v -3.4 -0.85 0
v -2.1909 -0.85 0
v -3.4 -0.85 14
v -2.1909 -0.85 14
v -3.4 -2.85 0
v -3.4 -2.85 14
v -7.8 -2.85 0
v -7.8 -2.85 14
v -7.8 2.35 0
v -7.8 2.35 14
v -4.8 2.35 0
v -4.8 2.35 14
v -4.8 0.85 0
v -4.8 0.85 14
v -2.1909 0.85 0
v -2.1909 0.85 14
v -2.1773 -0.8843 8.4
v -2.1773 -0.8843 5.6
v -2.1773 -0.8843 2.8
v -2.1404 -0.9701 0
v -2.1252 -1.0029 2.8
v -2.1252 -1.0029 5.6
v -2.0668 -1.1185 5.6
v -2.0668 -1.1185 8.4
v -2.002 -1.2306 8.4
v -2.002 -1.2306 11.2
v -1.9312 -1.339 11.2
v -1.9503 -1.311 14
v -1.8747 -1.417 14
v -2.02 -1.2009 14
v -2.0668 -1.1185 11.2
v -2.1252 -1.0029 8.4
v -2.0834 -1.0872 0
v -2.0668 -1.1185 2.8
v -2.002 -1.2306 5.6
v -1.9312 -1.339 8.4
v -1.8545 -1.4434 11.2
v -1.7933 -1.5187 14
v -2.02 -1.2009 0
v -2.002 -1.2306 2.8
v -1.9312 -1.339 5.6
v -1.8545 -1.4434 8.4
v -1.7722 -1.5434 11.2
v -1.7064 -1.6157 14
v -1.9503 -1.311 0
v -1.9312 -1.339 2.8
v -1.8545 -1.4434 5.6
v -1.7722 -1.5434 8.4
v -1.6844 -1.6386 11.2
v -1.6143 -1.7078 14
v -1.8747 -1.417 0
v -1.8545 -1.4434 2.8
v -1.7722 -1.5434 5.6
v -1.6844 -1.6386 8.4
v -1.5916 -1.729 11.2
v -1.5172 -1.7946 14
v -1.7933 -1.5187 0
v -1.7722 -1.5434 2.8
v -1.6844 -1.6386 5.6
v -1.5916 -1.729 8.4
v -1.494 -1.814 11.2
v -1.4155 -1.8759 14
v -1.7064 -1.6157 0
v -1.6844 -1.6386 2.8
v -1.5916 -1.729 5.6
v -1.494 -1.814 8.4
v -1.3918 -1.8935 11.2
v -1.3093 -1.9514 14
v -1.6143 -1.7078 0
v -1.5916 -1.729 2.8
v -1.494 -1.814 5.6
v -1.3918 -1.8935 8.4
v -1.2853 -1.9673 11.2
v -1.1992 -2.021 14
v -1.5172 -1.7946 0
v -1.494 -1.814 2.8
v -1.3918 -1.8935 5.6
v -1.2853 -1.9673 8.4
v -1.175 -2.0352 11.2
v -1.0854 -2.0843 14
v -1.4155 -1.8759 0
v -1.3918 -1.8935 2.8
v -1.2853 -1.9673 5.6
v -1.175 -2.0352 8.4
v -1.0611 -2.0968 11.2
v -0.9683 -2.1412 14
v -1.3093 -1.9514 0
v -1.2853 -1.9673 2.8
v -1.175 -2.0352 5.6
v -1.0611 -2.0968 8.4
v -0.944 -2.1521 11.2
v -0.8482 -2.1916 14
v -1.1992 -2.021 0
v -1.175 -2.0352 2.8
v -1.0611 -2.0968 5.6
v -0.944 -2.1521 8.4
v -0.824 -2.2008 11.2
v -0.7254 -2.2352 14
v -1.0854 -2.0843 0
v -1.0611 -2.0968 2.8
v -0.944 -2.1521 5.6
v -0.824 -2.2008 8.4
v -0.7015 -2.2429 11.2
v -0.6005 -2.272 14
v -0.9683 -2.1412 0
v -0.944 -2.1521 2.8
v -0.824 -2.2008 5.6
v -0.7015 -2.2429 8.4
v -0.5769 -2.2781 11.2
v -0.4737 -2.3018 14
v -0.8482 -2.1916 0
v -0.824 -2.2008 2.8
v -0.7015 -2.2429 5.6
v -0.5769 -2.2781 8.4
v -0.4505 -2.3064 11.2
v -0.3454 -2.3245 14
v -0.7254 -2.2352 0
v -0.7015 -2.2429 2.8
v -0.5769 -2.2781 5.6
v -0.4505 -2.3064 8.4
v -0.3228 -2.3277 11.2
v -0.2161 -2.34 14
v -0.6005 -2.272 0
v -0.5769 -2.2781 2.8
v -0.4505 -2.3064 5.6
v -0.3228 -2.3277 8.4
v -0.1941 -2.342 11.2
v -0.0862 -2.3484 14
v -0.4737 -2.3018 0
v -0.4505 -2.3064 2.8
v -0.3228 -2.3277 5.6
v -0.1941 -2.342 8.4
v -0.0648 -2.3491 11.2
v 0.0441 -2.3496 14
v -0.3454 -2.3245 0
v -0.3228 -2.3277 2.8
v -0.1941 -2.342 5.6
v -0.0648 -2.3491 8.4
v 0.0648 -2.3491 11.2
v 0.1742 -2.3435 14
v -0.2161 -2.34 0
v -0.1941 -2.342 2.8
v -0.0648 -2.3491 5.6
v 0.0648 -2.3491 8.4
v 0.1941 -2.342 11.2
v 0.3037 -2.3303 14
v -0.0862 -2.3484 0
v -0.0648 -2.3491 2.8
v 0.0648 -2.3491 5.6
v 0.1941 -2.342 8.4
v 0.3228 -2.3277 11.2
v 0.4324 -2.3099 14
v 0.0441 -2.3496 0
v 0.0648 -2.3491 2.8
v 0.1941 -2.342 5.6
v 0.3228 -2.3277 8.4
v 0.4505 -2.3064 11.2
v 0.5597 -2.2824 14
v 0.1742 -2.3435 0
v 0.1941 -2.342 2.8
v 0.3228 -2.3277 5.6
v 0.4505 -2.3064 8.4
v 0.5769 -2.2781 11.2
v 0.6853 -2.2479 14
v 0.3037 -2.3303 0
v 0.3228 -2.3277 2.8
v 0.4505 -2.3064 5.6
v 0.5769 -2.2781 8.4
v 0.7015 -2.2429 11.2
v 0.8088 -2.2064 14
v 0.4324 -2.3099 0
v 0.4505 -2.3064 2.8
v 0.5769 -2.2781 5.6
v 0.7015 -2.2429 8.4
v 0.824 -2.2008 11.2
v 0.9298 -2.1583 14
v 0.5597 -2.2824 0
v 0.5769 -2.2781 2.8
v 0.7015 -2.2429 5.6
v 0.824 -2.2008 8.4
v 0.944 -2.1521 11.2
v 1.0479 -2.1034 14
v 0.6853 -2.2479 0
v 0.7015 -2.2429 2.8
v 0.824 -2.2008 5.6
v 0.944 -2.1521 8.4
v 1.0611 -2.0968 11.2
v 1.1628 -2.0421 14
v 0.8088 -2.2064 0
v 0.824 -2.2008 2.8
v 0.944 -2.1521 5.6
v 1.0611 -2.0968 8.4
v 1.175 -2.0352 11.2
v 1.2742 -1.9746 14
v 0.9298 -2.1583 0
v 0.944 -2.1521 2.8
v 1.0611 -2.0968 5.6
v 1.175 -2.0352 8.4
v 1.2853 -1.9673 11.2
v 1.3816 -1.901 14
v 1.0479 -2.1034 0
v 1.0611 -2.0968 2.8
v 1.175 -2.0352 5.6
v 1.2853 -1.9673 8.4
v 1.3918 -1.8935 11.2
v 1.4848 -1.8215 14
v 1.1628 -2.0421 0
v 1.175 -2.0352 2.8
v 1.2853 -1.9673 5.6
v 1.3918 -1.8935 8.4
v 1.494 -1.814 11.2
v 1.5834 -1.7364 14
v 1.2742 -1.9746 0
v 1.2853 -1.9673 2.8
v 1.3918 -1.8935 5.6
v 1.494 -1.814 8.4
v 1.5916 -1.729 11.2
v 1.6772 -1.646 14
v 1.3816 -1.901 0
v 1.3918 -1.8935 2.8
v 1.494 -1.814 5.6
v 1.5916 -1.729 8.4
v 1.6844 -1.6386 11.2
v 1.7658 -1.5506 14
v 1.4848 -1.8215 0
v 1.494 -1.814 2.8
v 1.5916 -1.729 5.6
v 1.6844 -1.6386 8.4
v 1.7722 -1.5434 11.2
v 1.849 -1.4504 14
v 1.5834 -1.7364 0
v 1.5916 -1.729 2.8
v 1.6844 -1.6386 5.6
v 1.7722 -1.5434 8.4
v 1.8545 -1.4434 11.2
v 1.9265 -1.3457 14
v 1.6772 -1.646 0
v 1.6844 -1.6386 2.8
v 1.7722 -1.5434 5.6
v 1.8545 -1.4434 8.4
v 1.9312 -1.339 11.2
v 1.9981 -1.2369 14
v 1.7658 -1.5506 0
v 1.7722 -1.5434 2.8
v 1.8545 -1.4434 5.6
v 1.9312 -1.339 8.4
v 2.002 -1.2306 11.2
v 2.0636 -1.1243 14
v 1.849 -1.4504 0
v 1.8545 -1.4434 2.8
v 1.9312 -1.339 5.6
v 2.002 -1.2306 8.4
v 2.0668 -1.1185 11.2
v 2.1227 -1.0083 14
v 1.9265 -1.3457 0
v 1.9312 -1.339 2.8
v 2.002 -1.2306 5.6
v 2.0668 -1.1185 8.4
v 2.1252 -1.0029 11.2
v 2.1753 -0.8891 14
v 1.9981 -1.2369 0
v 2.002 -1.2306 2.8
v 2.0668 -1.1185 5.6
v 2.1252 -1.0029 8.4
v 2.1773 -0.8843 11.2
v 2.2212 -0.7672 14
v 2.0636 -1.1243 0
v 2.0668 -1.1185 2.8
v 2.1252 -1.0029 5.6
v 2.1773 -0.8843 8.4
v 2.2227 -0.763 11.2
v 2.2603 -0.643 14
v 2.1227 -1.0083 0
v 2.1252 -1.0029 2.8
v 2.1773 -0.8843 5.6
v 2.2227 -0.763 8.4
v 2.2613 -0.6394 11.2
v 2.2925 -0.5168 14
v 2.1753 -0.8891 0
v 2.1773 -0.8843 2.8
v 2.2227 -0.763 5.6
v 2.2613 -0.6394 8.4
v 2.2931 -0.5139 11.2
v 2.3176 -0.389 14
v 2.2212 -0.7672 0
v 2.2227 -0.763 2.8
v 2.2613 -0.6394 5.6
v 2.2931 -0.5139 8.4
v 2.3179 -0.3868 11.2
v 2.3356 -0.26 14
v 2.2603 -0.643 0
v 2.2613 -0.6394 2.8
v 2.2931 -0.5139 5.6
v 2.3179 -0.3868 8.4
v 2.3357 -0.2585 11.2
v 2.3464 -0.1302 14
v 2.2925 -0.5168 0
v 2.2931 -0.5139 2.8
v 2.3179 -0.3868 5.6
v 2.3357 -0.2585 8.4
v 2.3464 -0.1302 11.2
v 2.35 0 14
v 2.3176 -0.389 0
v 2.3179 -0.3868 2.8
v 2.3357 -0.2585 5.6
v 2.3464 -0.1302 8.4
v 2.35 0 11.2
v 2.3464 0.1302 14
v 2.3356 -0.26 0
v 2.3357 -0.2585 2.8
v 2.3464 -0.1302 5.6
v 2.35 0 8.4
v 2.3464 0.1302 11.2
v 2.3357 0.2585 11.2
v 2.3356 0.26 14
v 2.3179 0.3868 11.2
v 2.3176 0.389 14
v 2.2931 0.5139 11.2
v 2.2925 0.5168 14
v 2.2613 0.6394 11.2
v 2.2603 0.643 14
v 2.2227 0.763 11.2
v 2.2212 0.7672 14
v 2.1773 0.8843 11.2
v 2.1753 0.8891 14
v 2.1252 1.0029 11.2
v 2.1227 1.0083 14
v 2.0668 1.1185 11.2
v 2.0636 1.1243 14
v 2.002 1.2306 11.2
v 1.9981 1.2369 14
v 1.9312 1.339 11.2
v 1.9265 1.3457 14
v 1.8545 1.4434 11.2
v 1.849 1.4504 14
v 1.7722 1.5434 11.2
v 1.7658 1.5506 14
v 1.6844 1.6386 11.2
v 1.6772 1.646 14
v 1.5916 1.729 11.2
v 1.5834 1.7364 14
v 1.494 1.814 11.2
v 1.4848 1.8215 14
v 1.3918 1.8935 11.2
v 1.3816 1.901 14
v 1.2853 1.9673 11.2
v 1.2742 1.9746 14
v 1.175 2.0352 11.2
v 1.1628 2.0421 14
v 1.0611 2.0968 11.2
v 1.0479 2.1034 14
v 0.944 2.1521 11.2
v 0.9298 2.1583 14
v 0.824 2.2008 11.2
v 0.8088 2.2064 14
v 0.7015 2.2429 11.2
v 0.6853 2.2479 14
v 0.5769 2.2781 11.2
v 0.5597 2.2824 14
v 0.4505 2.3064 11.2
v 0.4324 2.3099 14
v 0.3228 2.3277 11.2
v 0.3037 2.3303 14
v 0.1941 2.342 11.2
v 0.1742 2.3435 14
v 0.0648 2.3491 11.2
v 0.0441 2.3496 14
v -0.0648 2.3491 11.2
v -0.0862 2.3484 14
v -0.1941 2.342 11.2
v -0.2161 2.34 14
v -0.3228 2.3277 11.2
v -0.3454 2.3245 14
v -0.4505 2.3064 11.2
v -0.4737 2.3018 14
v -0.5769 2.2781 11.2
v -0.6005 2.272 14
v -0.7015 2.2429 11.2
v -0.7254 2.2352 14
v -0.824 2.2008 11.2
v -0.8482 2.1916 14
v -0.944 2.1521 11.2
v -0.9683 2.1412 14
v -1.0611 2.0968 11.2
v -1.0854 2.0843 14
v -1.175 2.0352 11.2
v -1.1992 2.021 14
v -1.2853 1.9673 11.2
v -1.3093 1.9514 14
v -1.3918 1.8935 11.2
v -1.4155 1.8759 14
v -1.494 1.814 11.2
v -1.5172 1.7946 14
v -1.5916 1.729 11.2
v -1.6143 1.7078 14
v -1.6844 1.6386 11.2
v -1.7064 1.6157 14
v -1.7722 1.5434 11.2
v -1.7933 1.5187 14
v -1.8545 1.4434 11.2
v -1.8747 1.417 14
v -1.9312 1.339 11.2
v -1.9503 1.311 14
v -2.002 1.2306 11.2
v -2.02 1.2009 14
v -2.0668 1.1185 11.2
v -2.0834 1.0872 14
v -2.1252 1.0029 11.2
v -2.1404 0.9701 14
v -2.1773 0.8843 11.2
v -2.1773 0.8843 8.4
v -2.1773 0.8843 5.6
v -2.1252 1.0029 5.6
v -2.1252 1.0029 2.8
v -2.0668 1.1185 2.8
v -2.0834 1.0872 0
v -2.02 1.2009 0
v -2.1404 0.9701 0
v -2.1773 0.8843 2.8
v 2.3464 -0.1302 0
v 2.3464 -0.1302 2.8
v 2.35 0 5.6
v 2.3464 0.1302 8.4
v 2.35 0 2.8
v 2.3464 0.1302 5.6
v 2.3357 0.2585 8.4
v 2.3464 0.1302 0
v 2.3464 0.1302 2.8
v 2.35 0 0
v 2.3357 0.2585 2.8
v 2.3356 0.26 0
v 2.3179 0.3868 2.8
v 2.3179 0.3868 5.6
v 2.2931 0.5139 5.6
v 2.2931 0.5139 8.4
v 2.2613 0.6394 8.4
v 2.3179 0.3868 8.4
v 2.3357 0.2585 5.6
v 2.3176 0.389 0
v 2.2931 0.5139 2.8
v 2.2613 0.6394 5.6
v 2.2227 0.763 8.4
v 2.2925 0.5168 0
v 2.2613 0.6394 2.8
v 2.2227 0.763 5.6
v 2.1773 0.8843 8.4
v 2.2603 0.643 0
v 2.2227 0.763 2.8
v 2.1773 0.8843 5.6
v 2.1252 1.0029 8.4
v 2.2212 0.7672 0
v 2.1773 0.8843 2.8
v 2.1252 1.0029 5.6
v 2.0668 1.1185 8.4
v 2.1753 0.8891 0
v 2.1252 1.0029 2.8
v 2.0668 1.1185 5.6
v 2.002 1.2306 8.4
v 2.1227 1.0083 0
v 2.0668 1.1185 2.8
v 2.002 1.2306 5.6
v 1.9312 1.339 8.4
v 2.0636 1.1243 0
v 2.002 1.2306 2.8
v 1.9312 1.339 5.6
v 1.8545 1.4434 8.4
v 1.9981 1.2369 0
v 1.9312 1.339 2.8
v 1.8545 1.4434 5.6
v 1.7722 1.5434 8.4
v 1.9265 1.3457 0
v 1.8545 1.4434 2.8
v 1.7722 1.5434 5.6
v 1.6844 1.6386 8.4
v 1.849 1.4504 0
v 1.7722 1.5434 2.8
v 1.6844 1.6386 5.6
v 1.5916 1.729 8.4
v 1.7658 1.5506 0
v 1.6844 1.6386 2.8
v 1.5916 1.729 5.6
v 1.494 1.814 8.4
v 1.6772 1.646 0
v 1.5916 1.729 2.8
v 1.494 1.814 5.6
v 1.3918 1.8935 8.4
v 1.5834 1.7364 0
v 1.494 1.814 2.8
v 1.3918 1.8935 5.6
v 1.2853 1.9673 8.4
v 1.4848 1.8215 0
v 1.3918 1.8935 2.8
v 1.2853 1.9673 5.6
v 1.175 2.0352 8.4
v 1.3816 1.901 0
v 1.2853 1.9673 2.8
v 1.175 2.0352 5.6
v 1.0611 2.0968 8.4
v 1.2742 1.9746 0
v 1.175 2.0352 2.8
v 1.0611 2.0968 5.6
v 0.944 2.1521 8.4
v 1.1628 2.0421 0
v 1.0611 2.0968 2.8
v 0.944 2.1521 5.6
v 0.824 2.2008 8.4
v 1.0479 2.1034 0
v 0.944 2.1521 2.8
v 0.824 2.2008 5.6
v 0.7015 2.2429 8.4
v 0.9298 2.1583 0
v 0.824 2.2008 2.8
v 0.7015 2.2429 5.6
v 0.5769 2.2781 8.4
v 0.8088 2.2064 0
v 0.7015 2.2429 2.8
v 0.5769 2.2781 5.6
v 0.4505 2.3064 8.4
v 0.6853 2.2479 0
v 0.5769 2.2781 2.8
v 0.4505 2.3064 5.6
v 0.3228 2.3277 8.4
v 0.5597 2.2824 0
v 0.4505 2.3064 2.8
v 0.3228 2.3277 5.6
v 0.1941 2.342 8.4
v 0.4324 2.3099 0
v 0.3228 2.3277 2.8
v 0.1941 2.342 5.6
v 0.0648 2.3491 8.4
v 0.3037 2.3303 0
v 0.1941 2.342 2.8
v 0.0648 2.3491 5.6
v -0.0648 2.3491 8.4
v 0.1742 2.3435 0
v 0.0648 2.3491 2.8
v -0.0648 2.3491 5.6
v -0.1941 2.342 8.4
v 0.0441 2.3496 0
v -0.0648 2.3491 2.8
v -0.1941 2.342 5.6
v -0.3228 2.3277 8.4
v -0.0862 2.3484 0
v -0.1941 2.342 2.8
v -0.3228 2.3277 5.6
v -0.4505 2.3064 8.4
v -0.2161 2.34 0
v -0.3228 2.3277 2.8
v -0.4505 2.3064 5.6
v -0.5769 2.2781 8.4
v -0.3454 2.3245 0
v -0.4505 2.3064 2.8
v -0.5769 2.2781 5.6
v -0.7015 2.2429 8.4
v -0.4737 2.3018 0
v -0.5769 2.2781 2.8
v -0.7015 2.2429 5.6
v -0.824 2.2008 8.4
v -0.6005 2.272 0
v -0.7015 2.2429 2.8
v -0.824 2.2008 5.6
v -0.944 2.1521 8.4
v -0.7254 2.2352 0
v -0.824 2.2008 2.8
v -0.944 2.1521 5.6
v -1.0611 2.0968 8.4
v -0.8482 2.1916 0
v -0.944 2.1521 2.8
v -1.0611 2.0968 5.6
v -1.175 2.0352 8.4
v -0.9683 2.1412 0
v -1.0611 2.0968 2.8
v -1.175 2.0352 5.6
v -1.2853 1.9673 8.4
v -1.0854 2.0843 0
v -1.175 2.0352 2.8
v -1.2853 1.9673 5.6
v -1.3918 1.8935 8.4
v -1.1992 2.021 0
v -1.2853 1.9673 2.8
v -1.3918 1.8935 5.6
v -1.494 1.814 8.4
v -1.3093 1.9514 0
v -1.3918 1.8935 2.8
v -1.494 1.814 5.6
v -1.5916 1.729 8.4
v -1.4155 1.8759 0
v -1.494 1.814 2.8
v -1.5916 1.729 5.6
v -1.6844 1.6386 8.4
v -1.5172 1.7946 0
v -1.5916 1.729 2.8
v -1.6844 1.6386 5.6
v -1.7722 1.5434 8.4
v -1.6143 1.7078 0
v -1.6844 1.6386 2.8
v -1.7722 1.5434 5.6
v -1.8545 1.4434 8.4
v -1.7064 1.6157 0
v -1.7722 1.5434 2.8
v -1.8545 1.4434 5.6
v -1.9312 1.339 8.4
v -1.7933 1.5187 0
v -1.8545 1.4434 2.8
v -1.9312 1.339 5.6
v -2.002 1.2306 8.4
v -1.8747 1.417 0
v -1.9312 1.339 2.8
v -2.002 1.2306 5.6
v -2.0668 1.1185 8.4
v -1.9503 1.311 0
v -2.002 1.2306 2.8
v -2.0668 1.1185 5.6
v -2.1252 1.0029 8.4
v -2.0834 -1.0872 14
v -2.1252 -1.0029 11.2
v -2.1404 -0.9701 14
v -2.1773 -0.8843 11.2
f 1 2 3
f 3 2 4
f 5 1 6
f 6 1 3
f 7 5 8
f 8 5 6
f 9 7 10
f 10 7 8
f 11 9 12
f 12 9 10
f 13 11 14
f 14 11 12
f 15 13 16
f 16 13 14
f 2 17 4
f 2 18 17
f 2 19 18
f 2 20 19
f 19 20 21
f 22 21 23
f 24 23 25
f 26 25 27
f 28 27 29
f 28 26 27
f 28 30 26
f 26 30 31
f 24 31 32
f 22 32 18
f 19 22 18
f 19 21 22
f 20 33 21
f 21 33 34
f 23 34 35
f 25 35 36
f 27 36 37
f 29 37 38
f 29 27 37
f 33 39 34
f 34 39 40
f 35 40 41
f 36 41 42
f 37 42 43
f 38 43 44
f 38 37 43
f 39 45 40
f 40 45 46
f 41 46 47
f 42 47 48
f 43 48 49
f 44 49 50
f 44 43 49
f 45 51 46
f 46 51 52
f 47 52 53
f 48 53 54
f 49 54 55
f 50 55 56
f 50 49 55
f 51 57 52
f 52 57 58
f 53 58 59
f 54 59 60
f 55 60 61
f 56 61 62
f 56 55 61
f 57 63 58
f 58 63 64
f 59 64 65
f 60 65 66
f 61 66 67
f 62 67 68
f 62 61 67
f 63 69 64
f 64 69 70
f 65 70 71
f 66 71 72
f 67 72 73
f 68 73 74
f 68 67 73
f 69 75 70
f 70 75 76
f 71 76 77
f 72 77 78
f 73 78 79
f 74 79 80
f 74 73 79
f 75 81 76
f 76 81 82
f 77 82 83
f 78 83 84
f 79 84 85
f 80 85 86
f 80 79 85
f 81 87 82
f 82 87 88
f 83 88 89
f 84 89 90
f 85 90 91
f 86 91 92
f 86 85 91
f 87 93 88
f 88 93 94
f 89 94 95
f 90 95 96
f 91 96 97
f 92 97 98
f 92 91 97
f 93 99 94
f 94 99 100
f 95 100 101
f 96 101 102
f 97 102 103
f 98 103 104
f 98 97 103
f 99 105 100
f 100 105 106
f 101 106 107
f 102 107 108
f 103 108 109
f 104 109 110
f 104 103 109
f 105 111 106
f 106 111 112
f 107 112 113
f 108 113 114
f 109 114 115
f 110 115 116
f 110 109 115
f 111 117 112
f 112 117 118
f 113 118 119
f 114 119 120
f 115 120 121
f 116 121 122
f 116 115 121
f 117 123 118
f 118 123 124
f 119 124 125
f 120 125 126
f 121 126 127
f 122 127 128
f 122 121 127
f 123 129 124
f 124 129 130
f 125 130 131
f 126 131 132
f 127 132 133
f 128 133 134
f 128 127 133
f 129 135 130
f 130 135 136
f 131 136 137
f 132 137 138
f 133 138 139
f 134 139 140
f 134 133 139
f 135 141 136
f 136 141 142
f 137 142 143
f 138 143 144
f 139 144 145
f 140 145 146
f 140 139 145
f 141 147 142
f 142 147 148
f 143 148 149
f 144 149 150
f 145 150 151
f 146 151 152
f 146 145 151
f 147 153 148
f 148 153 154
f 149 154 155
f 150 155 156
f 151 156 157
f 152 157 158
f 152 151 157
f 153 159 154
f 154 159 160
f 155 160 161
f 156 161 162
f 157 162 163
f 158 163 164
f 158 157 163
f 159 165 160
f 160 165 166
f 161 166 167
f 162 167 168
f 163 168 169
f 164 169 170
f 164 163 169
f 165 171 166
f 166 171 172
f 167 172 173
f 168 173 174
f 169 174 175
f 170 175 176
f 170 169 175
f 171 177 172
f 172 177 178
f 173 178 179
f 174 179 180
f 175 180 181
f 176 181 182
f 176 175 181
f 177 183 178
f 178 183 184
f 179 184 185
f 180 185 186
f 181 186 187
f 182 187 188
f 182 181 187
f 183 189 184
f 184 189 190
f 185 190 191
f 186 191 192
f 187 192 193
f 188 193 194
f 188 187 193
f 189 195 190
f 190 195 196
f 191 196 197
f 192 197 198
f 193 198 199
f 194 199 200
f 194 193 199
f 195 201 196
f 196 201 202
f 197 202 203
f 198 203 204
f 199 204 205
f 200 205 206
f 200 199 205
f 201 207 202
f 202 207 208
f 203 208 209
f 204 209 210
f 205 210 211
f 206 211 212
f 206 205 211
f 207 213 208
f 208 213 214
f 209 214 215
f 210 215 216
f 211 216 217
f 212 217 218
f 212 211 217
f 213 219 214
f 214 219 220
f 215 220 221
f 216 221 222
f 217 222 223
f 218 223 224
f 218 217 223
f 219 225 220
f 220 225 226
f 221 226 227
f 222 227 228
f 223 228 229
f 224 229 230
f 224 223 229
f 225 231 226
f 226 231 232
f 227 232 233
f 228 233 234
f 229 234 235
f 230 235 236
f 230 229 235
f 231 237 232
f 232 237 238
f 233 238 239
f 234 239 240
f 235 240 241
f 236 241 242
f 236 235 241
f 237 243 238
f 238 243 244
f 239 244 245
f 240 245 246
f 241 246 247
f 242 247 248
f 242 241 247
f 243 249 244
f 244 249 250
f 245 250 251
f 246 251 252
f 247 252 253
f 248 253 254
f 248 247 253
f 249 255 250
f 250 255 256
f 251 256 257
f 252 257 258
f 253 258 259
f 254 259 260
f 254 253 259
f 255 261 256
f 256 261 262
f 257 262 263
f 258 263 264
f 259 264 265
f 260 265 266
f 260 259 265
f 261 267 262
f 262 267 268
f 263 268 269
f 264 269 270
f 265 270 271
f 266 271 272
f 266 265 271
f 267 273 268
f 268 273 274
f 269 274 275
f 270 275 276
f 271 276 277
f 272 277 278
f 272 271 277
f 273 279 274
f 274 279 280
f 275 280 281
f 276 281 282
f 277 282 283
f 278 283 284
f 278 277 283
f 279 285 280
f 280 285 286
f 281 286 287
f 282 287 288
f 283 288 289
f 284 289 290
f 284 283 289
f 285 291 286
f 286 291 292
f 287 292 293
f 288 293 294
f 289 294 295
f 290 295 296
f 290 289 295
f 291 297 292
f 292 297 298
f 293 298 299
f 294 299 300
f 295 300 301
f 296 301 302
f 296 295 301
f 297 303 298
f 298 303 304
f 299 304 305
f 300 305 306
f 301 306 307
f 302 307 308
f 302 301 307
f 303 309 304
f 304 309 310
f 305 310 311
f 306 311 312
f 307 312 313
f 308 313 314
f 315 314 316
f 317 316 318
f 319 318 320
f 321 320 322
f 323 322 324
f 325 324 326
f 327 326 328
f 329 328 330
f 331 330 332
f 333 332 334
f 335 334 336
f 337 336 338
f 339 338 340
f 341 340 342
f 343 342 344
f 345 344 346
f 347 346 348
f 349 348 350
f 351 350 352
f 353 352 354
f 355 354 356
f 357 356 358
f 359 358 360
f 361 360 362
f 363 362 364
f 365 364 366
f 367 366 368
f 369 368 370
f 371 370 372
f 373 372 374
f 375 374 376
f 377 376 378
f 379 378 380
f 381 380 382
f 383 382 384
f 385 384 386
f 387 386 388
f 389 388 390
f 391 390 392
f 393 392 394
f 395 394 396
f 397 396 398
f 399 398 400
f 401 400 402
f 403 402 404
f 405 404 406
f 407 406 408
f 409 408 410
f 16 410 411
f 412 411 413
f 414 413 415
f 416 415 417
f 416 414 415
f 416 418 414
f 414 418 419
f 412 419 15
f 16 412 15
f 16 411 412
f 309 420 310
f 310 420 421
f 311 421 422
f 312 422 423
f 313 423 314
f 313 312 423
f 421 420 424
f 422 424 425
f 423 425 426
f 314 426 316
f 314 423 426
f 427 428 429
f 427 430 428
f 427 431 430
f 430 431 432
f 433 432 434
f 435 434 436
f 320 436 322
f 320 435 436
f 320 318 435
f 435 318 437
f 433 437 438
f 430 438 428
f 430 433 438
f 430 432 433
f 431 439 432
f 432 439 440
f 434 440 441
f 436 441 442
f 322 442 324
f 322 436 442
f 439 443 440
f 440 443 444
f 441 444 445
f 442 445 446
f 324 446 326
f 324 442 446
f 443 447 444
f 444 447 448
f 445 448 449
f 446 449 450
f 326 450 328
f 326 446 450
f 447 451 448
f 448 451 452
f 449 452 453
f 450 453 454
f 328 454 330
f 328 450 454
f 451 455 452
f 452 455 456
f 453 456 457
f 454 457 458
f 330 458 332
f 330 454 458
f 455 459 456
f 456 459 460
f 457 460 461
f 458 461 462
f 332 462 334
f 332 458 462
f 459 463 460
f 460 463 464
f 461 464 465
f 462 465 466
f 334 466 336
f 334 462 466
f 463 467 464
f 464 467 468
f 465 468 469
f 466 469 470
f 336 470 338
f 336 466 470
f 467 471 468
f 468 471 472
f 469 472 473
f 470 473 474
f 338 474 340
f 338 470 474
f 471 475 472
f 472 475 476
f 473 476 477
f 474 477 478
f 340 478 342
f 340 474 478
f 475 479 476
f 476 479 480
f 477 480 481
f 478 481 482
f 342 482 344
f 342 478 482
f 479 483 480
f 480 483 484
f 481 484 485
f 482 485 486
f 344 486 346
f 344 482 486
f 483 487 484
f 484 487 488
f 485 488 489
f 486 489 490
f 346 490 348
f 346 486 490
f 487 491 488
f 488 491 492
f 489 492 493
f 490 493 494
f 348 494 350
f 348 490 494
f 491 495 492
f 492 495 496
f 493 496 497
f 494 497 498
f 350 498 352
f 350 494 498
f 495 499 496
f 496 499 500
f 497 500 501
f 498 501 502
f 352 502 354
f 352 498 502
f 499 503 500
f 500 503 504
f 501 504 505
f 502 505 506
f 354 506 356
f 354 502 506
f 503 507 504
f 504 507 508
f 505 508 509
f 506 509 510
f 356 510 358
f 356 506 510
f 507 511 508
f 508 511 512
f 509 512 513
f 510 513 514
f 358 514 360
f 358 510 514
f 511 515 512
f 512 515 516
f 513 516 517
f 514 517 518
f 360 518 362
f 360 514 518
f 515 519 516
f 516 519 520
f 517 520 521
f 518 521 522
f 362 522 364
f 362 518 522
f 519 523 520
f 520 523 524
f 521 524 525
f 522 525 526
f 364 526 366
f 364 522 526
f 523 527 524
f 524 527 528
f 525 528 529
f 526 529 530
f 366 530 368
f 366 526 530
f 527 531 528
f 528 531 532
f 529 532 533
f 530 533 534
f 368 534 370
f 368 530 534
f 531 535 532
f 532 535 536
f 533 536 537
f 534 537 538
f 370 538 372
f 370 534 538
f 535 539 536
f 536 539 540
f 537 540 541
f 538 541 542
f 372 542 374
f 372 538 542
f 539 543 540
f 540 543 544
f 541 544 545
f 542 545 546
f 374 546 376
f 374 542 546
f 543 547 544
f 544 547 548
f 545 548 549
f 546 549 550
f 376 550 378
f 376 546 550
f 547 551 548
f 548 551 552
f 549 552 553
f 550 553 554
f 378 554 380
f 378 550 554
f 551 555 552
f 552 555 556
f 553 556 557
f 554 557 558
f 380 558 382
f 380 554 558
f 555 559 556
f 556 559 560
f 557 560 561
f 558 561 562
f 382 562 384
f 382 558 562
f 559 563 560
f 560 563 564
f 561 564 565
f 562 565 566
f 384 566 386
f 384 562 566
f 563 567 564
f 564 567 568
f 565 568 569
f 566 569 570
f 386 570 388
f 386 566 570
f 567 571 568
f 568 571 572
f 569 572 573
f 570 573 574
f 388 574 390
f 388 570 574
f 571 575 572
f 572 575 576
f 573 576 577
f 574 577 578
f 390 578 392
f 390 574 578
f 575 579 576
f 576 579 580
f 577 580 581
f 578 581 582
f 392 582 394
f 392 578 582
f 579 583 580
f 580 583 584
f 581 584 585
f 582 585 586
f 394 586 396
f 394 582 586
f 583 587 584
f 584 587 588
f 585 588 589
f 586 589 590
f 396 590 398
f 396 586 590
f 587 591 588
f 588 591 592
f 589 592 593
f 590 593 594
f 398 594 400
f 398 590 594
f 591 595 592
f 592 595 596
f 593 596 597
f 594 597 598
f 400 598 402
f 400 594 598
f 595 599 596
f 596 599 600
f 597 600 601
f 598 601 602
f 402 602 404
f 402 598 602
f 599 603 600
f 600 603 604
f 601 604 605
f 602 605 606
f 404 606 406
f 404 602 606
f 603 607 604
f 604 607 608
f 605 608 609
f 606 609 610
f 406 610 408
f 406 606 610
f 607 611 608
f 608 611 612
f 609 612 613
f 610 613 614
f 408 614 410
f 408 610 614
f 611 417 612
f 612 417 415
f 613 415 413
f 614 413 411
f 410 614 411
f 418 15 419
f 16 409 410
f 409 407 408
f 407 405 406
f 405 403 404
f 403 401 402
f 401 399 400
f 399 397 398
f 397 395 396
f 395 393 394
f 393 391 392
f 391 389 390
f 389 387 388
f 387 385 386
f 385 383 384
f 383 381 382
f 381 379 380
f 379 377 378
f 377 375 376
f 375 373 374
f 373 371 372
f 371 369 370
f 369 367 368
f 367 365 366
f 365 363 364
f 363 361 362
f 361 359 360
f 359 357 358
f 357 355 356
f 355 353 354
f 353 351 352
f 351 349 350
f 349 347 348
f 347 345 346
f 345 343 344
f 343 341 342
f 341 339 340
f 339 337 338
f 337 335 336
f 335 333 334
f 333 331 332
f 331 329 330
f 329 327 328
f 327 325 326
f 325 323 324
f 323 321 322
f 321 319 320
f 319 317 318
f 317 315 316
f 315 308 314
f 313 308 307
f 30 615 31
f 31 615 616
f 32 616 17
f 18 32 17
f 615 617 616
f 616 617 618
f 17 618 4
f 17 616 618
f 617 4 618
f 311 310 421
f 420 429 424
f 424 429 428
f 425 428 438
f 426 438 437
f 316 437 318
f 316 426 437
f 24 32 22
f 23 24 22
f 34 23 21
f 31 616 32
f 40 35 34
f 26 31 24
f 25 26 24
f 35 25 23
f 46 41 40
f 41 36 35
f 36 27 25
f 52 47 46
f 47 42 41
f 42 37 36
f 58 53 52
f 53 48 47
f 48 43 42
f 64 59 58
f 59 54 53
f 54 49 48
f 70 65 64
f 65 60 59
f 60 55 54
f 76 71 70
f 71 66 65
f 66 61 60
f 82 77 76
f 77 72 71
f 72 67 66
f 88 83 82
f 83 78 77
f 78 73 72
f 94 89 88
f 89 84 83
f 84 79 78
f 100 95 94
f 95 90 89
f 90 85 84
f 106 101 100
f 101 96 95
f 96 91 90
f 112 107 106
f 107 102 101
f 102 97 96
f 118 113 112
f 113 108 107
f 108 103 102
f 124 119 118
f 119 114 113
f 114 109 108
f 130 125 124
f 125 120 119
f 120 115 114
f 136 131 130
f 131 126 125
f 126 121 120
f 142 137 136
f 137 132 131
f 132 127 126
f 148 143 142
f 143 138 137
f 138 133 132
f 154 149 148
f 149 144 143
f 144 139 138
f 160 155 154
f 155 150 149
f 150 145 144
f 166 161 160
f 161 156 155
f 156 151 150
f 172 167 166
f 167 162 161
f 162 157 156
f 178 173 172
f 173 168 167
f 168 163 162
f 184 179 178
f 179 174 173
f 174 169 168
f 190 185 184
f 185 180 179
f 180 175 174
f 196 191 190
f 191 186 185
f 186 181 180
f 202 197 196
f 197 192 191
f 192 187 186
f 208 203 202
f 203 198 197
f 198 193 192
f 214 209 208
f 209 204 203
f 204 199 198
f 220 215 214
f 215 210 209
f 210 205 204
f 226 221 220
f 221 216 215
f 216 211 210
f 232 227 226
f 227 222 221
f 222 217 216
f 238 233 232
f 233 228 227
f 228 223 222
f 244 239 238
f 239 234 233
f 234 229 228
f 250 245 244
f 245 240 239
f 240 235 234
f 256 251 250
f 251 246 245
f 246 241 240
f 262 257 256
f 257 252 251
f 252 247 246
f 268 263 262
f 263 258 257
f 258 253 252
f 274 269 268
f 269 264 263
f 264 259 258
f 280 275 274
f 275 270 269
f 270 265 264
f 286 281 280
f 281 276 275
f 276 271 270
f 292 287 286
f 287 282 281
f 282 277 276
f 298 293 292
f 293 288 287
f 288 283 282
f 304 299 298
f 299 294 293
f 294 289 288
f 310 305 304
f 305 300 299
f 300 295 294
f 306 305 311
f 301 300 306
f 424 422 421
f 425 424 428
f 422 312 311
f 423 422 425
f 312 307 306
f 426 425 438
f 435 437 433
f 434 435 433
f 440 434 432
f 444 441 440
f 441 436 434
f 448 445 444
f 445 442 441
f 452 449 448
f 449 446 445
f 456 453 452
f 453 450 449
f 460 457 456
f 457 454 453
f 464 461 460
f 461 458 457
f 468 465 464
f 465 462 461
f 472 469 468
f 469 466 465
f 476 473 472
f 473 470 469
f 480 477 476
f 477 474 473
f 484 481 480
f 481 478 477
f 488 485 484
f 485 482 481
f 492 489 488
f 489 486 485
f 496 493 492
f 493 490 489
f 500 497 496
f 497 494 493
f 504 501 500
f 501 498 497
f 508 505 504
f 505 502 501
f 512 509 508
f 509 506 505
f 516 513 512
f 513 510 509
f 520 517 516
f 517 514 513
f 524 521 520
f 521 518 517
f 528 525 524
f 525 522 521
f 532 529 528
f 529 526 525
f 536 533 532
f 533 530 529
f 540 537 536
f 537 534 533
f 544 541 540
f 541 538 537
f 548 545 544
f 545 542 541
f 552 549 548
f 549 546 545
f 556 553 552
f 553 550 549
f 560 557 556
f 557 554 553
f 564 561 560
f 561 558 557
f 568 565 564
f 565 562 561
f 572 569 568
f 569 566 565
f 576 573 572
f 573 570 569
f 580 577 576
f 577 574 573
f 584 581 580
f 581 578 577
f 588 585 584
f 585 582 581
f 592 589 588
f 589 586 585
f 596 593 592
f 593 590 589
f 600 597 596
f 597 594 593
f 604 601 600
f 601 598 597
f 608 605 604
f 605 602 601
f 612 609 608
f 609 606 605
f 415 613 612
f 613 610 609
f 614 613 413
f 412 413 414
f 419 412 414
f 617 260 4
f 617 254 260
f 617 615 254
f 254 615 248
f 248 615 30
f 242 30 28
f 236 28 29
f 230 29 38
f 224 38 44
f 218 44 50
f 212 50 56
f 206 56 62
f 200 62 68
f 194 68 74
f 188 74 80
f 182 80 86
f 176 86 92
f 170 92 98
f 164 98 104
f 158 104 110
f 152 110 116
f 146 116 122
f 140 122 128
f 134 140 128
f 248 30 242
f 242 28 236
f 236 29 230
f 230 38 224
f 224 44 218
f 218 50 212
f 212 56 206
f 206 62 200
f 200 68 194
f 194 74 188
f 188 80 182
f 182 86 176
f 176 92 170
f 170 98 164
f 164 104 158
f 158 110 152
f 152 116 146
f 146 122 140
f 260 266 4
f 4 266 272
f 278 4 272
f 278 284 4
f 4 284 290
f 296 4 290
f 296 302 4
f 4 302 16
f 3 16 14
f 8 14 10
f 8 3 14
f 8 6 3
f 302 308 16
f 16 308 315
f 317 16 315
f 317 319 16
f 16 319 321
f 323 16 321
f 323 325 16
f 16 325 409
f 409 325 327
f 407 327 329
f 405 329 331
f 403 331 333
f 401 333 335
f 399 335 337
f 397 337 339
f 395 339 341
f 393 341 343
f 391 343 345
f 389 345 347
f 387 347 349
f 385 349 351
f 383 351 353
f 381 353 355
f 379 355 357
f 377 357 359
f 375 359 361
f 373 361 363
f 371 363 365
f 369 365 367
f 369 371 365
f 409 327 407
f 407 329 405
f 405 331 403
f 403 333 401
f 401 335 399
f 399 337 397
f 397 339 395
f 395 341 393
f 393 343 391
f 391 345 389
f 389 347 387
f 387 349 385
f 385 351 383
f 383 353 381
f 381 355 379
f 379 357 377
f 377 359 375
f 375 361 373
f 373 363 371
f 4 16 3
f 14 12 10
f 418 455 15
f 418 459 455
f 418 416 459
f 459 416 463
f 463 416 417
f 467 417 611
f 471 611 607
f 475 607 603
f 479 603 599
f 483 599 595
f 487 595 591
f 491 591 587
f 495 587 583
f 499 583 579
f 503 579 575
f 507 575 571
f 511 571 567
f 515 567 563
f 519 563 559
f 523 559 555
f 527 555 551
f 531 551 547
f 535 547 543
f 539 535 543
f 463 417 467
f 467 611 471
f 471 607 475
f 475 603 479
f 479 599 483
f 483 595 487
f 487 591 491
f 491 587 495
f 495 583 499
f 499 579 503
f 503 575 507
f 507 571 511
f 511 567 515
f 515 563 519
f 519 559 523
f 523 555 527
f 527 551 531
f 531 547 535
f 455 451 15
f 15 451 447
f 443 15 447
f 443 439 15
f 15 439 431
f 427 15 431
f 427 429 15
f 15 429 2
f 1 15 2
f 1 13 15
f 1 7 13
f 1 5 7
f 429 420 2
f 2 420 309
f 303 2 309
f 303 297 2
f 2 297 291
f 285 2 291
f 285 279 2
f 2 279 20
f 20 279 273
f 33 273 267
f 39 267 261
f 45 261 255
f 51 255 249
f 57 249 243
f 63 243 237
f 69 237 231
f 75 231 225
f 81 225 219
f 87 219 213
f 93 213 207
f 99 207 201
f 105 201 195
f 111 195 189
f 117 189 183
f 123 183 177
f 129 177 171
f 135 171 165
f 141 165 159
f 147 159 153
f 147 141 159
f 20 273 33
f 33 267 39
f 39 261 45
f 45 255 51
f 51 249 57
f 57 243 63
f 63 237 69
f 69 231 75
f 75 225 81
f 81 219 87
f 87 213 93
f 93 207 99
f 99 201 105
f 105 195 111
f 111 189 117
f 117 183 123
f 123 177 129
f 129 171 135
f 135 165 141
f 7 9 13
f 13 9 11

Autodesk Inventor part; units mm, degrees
ref_plane "YZ Plane" through (0, 0, 0) normal (1, 0, 0) x (0, 1, 0)
ref_plane "XZ Plane" through (0, 0, 0) normal (0, 1, 0) x (-1, 0, 0)
ref_plane "XY Plane" through (0, 0, 0) normal (0, 0, 1) x (1, 0, 0)
sketch "Sketch1" plane through (0, 0, 0) normal (0, 0, 1) x (1, 0, 0)
  circle A0 centre (0, 0) radius 2.35
  line L0 (-2.1909, 0.85) -> (-4.8, 0.85)
  line L1 (-4.8, 0.85) -> (-4.8, 2.35)
  line L2 (-2.1909, -0.85) -> (-3.4, -0.85)
  line L3 (-3.4, -0.85) -> (-3.4, -2.85)
  line L4 (-3.4, -2.85) -> (-7.8, -2.85)
  line L5 (-7.8, -2.85) -> (-7.8, 2.35)
  line L6 (-7.8, 2.35) -> (-4.8, 2.35)
  dimension "d0" = 4.7
  dimension "d1" = 4.8
  dimension "d2" = 1.4
  dimension "d3" = 2
  dimension "d7" = 1.7
  dimension "d8" = 3
  dimension "d9" = 2.35
extrude "Extrusion1" add sketch "Sketch1" along normal blind 14
properties part number "rigid connector"
